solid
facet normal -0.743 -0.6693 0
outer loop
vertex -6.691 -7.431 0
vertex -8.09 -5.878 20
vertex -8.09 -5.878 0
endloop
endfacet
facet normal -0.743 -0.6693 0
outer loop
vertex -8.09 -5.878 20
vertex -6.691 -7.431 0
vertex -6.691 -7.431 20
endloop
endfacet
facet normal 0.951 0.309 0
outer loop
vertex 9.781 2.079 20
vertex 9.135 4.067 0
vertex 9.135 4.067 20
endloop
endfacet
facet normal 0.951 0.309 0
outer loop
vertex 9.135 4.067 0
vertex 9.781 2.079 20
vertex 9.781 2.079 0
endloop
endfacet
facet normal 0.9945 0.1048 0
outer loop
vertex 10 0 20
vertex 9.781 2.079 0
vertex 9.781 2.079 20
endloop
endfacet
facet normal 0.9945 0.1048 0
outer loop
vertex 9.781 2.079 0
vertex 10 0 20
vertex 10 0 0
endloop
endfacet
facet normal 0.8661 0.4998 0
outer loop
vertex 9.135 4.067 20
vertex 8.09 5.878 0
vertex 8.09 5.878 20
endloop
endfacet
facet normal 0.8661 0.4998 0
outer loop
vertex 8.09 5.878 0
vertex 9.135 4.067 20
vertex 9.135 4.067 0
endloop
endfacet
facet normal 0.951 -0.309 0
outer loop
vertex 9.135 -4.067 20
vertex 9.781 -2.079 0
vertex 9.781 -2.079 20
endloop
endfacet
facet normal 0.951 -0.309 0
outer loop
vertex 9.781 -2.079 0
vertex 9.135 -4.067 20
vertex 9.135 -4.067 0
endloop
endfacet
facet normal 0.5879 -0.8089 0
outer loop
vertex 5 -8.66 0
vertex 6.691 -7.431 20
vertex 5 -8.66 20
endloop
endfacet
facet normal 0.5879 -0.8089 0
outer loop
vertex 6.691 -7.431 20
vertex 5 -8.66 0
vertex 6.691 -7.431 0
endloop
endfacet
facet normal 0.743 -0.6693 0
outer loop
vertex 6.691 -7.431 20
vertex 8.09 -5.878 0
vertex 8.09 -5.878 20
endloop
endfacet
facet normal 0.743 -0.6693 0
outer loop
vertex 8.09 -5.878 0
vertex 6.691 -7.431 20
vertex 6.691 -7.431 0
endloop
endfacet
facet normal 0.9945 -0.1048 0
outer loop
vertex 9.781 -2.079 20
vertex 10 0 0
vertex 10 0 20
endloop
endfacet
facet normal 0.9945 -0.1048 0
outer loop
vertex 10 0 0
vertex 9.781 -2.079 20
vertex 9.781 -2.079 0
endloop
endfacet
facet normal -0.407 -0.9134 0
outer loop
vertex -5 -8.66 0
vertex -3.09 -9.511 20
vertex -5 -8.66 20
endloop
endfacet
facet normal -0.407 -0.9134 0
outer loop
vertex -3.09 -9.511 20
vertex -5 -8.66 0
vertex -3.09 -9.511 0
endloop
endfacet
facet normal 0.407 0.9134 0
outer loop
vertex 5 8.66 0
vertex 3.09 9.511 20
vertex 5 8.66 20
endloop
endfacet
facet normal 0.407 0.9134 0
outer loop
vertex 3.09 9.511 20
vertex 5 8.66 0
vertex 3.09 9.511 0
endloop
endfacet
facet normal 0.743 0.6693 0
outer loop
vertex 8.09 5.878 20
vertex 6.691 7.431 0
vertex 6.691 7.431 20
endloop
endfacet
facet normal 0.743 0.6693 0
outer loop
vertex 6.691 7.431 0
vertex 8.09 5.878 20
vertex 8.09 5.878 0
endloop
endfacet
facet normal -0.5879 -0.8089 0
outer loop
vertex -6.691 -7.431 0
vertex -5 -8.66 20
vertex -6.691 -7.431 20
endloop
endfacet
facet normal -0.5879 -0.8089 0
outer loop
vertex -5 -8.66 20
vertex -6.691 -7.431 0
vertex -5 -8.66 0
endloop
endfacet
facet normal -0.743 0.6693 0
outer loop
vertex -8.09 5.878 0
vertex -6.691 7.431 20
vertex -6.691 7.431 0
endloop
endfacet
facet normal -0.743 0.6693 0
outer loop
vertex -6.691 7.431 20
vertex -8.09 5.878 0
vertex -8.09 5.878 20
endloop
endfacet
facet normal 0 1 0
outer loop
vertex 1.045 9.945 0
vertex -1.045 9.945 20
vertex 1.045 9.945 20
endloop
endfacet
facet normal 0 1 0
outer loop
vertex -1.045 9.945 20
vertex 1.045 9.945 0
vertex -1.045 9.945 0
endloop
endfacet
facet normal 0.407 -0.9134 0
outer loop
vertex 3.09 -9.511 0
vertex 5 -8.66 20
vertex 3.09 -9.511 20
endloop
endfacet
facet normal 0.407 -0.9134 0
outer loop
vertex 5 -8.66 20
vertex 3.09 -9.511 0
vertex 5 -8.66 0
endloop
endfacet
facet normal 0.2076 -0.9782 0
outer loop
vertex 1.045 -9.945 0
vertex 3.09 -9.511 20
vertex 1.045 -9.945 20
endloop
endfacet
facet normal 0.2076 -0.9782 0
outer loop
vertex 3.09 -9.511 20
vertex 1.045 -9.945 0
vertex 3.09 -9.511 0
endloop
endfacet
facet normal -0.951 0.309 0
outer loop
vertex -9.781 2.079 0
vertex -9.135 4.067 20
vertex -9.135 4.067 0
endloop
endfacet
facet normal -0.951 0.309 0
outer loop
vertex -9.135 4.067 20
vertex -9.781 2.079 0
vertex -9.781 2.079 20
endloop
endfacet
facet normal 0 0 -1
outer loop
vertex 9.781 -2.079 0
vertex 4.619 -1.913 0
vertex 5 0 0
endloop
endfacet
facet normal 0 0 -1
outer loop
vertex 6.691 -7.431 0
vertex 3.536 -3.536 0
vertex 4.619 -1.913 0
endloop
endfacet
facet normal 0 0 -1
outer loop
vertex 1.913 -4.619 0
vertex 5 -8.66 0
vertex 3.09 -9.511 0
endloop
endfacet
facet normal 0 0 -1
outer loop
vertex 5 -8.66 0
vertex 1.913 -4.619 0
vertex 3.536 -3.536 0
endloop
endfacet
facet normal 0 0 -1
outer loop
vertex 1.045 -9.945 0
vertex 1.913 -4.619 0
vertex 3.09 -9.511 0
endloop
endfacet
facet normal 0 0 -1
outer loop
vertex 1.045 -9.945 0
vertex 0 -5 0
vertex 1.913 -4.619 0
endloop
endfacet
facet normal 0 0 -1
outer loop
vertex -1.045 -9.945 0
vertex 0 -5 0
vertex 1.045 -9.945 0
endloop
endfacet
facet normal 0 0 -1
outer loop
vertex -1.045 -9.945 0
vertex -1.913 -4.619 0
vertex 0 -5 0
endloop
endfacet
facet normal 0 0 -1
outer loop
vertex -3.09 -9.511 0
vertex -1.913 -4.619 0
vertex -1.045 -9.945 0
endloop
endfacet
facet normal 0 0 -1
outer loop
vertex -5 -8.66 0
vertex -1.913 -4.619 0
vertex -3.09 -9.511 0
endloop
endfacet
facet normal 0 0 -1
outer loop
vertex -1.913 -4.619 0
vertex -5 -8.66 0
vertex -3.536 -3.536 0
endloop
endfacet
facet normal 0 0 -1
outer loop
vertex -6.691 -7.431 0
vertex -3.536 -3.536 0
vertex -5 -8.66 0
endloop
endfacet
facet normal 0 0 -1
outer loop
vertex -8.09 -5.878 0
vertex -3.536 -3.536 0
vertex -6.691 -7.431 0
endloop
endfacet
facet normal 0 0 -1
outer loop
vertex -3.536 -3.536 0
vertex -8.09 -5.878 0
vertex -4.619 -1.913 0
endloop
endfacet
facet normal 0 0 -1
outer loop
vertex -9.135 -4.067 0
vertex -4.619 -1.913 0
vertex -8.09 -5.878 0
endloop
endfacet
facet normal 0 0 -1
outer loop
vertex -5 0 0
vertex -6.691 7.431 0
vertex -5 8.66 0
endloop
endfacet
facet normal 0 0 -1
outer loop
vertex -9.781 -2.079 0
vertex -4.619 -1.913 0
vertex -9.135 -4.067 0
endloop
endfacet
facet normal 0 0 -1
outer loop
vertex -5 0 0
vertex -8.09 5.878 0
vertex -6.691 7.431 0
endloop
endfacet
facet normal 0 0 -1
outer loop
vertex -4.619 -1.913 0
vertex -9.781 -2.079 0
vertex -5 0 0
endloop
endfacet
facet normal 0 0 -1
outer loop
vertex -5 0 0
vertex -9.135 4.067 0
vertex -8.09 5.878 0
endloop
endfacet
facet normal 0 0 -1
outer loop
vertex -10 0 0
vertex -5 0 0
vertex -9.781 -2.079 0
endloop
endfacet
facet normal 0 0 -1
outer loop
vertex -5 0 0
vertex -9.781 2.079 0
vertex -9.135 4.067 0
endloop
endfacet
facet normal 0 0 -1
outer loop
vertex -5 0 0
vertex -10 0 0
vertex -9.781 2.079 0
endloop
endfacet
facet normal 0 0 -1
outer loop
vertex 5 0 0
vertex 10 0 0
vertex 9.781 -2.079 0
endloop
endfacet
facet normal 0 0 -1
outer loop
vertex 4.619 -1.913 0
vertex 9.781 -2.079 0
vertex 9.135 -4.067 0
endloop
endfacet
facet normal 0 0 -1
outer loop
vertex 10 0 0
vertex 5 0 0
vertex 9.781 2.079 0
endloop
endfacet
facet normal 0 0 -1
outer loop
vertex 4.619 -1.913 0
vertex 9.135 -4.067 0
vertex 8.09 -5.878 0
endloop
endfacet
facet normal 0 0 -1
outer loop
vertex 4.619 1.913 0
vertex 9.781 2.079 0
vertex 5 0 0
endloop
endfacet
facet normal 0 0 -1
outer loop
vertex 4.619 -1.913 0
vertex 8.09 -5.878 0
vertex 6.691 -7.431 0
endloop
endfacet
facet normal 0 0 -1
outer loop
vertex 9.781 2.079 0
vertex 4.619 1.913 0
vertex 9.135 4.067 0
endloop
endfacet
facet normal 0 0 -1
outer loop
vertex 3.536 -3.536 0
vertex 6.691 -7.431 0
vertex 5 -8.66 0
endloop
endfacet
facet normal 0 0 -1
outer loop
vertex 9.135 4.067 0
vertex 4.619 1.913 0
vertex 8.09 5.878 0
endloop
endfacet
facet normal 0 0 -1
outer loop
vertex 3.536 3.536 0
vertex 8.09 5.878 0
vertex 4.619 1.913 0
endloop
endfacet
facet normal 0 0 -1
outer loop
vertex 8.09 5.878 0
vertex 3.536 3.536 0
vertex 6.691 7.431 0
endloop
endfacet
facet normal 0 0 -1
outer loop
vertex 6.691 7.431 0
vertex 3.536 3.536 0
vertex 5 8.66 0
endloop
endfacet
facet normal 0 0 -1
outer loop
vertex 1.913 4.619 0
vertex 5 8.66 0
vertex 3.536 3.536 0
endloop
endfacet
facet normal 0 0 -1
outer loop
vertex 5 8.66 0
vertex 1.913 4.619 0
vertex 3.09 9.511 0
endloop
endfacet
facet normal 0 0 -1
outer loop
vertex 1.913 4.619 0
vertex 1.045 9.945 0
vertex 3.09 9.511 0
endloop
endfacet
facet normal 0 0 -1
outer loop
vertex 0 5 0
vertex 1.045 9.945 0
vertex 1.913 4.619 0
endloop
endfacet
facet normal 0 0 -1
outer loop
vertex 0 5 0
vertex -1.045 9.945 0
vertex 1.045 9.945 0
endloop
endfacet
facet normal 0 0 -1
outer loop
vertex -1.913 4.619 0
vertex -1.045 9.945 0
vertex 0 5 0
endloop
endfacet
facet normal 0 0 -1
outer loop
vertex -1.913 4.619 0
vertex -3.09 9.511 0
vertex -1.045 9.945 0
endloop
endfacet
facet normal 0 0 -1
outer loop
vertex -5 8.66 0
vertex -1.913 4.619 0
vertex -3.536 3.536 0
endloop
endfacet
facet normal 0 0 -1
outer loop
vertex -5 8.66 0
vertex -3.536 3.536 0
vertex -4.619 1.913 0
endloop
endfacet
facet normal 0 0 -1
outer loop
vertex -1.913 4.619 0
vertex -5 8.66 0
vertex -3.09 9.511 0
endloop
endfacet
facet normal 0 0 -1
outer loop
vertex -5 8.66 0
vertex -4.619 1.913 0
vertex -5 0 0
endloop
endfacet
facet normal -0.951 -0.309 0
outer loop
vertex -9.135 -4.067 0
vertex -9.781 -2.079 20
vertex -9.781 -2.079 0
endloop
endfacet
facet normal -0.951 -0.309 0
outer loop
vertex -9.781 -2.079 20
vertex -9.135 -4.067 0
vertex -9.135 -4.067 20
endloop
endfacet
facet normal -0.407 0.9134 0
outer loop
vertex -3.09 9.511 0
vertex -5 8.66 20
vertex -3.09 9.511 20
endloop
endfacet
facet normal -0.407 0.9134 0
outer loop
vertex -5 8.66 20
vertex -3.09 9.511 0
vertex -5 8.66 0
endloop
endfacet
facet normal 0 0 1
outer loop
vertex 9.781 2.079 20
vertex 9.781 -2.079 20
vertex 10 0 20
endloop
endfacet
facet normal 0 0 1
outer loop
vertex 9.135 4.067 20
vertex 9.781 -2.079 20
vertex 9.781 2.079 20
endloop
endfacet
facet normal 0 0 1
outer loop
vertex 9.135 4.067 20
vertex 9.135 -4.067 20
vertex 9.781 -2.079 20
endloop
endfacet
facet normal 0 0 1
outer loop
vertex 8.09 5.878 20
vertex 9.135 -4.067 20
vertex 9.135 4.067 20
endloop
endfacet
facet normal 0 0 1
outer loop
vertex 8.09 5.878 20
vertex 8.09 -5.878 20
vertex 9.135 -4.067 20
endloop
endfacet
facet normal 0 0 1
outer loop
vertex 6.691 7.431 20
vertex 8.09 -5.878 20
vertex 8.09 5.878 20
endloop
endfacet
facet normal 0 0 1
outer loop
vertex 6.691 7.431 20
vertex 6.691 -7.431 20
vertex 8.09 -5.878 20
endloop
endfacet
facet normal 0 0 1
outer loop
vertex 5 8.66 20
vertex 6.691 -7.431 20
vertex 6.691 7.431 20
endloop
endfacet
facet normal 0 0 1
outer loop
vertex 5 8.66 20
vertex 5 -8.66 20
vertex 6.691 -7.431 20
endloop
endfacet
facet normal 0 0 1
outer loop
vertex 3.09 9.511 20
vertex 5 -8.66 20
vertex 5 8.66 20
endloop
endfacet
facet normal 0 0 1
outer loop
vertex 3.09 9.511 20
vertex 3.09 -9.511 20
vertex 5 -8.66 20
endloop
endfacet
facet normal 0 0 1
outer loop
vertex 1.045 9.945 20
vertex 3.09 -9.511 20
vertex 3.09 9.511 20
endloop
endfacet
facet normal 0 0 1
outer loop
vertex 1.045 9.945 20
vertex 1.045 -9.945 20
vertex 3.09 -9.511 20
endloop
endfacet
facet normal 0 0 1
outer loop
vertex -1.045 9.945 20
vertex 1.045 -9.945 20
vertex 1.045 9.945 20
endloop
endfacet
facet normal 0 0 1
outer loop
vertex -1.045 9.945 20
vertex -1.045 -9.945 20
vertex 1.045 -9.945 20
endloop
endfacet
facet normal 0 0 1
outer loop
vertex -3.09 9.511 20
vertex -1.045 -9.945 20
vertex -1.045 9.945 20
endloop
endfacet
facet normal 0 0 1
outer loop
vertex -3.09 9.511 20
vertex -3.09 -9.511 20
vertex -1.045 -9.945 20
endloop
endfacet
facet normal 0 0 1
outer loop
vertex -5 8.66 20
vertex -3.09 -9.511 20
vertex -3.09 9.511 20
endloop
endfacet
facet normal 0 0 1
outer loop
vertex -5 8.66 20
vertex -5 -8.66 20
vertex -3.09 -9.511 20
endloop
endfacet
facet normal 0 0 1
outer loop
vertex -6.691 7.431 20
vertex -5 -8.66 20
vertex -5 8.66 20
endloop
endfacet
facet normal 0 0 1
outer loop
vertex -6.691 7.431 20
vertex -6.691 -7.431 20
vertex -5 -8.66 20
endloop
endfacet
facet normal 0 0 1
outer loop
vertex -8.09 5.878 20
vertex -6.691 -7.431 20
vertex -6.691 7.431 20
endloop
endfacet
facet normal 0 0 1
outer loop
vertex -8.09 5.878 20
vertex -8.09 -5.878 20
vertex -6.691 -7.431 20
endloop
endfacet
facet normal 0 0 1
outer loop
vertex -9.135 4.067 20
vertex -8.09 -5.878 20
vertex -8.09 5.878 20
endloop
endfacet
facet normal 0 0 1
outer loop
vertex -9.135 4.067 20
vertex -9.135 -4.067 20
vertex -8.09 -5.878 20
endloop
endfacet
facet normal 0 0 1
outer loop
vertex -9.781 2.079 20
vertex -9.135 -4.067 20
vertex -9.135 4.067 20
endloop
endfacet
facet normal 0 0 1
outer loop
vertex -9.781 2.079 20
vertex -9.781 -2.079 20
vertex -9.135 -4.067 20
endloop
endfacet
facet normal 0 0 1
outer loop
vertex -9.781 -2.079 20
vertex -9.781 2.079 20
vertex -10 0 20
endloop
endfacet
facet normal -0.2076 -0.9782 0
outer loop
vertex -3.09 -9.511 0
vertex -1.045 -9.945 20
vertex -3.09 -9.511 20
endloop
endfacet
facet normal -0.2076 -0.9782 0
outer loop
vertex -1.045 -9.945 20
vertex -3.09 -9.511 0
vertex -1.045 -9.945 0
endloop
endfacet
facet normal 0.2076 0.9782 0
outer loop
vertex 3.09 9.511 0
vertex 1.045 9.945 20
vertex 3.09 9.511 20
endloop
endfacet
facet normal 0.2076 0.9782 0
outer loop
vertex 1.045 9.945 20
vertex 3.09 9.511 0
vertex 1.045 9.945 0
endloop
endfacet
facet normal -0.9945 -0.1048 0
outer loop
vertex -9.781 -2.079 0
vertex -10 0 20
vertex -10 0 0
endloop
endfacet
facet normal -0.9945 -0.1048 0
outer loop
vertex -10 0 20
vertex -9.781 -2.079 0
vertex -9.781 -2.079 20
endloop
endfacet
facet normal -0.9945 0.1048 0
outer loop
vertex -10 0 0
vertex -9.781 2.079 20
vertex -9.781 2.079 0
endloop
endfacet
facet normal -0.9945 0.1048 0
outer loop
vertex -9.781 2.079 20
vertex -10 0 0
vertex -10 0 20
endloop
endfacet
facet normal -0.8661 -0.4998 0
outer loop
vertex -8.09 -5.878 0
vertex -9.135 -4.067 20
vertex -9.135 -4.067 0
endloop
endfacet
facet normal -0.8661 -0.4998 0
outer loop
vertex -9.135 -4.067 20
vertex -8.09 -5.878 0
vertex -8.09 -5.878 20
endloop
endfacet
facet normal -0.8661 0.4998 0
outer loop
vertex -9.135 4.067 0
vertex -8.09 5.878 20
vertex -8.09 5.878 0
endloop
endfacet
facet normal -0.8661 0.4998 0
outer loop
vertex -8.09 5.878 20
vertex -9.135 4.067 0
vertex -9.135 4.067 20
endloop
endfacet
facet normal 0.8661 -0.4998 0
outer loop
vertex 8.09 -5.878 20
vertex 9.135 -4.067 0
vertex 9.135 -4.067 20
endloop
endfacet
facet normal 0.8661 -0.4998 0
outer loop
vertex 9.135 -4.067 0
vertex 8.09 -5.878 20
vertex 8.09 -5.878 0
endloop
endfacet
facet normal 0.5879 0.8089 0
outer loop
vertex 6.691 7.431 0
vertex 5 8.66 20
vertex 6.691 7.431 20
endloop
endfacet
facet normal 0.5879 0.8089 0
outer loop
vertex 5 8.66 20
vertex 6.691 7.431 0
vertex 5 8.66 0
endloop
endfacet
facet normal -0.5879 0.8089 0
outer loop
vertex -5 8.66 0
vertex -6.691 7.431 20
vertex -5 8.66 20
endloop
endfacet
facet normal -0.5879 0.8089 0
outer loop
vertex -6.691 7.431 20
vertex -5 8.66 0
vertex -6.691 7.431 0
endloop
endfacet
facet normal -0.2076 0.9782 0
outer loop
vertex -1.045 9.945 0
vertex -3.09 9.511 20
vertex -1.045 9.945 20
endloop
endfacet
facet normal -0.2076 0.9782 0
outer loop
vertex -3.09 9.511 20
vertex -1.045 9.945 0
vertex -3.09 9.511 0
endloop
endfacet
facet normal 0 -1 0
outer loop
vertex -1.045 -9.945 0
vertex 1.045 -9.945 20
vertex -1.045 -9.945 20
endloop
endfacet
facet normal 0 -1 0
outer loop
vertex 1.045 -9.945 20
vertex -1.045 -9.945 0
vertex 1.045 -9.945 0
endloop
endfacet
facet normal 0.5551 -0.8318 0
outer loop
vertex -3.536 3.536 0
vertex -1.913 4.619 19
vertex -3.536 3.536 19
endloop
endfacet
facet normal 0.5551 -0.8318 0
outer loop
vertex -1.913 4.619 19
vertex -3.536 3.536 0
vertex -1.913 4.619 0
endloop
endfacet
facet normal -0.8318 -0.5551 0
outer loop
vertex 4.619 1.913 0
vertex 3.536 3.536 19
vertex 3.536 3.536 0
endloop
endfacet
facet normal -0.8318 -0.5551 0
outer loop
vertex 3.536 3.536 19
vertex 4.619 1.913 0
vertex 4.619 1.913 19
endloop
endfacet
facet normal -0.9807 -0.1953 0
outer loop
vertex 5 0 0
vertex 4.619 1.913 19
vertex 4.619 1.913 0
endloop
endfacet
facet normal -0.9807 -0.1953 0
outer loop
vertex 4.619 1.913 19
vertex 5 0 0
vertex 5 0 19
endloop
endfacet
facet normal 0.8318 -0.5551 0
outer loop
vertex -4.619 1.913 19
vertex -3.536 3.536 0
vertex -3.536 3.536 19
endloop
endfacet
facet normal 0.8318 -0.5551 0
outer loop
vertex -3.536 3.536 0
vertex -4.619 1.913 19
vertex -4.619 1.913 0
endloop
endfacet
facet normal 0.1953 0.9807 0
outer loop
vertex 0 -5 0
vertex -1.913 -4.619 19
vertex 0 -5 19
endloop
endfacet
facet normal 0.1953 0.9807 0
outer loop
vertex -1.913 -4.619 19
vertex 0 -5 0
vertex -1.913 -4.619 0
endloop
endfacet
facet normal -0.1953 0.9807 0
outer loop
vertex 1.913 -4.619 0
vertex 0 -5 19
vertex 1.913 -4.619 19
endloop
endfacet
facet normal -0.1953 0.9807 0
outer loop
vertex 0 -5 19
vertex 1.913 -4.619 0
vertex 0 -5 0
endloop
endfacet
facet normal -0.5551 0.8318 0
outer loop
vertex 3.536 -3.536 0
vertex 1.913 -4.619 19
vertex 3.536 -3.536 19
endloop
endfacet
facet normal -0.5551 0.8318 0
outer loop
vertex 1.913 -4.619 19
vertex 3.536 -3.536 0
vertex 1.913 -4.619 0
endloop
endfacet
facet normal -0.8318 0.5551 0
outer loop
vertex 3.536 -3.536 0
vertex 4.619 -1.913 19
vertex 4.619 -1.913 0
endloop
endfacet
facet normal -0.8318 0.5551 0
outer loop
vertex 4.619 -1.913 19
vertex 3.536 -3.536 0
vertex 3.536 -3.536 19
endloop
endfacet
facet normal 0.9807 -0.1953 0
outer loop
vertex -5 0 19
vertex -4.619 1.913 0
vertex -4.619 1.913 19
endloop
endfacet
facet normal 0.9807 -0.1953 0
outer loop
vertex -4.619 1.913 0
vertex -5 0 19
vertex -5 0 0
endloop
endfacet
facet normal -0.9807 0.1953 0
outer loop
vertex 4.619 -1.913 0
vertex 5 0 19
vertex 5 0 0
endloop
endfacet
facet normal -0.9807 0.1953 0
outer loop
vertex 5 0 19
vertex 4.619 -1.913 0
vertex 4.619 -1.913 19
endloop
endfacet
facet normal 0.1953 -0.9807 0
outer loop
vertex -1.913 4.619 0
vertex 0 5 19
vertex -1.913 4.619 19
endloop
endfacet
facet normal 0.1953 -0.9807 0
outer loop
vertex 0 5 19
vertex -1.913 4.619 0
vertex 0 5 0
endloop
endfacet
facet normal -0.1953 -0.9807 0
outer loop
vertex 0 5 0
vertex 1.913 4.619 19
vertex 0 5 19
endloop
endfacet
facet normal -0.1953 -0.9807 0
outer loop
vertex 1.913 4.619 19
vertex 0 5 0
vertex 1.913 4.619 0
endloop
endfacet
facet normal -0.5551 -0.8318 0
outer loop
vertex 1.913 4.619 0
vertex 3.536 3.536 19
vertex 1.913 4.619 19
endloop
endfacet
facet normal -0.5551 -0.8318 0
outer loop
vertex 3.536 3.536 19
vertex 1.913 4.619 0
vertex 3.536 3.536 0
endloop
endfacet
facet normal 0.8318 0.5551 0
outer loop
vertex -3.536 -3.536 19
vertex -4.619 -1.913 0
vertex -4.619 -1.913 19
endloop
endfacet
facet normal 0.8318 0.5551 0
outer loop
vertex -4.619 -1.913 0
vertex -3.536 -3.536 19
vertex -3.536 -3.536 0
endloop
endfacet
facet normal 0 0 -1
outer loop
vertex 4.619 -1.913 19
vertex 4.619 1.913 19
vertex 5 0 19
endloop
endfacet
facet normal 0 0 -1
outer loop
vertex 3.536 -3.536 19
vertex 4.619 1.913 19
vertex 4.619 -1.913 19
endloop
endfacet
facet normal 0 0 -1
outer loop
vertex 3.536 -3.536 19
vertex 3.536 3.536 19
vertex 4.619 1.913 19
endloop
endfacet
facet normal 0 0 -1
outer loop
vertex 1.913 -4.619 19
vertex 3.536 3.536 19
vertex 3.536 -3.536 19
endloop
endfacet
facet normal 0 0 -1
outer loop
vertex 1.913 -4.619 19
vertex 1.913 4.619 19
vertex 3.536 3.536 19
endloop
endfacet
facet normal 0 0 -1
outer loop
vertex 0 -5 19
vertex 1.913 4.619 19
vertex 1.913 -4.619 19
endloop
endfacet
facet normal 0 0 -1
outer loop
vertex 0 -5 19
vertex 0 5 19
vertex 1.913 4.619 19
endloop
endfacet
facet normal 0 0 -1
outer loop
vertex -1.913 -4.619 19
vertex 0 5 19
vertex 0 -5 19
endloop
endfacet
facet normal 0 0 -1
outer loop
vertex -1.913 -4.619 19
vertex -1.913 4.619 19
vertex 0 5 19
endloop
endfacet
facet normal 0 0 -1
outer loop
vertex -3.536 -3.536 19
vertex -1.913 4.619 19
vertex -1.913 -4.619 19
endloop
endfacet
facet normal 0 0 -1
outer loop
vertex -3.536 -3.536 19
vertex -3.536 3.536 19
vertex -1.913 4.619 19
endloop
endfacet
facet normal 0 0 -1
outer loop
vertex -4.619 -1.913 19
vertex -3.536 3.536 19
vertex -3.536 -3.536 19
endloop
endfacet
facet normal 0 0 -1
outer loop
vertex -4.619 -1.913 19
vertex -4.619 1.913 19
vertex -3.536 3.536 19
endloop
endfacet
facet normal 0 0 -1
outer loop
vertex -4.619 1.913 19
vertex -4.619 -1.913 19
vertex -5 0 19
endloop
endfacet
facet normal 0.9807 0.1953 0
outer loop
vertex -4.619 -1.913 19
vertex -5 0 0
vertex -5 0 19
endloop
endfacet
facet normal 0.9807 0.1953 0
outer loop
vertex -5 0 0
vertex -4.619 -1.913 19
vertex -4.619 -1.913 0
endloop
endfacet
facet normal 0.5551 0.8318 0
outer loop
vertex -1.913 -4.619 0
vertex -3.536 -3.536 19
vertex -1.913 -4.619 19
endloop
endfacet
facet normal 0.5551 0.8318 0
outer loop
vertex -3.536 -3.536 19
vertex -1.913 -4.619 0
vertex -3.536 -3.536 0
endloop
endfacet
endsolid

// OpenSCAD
// Coupling Parameters
inner_diameter = 10;
outer_diameter = 20;
length = 20;
wall_thickness = 2;

// Create the inner cylinder
module inner_cylinder(diameter, height) {
    cylinder(h = height, d = diameter);
}

// Create the outer cylinder
module outer_cylinder(diameter, height) {
    cylinder(h = height, d = diameter);
}

// Combine the inner and outer cylinders
difference() {
    outer_cylinder(outer_diameter, length);
    translate([0, 0, -wall_thickness/2])
    inner_cylinder(inner_diameter, length);
}
